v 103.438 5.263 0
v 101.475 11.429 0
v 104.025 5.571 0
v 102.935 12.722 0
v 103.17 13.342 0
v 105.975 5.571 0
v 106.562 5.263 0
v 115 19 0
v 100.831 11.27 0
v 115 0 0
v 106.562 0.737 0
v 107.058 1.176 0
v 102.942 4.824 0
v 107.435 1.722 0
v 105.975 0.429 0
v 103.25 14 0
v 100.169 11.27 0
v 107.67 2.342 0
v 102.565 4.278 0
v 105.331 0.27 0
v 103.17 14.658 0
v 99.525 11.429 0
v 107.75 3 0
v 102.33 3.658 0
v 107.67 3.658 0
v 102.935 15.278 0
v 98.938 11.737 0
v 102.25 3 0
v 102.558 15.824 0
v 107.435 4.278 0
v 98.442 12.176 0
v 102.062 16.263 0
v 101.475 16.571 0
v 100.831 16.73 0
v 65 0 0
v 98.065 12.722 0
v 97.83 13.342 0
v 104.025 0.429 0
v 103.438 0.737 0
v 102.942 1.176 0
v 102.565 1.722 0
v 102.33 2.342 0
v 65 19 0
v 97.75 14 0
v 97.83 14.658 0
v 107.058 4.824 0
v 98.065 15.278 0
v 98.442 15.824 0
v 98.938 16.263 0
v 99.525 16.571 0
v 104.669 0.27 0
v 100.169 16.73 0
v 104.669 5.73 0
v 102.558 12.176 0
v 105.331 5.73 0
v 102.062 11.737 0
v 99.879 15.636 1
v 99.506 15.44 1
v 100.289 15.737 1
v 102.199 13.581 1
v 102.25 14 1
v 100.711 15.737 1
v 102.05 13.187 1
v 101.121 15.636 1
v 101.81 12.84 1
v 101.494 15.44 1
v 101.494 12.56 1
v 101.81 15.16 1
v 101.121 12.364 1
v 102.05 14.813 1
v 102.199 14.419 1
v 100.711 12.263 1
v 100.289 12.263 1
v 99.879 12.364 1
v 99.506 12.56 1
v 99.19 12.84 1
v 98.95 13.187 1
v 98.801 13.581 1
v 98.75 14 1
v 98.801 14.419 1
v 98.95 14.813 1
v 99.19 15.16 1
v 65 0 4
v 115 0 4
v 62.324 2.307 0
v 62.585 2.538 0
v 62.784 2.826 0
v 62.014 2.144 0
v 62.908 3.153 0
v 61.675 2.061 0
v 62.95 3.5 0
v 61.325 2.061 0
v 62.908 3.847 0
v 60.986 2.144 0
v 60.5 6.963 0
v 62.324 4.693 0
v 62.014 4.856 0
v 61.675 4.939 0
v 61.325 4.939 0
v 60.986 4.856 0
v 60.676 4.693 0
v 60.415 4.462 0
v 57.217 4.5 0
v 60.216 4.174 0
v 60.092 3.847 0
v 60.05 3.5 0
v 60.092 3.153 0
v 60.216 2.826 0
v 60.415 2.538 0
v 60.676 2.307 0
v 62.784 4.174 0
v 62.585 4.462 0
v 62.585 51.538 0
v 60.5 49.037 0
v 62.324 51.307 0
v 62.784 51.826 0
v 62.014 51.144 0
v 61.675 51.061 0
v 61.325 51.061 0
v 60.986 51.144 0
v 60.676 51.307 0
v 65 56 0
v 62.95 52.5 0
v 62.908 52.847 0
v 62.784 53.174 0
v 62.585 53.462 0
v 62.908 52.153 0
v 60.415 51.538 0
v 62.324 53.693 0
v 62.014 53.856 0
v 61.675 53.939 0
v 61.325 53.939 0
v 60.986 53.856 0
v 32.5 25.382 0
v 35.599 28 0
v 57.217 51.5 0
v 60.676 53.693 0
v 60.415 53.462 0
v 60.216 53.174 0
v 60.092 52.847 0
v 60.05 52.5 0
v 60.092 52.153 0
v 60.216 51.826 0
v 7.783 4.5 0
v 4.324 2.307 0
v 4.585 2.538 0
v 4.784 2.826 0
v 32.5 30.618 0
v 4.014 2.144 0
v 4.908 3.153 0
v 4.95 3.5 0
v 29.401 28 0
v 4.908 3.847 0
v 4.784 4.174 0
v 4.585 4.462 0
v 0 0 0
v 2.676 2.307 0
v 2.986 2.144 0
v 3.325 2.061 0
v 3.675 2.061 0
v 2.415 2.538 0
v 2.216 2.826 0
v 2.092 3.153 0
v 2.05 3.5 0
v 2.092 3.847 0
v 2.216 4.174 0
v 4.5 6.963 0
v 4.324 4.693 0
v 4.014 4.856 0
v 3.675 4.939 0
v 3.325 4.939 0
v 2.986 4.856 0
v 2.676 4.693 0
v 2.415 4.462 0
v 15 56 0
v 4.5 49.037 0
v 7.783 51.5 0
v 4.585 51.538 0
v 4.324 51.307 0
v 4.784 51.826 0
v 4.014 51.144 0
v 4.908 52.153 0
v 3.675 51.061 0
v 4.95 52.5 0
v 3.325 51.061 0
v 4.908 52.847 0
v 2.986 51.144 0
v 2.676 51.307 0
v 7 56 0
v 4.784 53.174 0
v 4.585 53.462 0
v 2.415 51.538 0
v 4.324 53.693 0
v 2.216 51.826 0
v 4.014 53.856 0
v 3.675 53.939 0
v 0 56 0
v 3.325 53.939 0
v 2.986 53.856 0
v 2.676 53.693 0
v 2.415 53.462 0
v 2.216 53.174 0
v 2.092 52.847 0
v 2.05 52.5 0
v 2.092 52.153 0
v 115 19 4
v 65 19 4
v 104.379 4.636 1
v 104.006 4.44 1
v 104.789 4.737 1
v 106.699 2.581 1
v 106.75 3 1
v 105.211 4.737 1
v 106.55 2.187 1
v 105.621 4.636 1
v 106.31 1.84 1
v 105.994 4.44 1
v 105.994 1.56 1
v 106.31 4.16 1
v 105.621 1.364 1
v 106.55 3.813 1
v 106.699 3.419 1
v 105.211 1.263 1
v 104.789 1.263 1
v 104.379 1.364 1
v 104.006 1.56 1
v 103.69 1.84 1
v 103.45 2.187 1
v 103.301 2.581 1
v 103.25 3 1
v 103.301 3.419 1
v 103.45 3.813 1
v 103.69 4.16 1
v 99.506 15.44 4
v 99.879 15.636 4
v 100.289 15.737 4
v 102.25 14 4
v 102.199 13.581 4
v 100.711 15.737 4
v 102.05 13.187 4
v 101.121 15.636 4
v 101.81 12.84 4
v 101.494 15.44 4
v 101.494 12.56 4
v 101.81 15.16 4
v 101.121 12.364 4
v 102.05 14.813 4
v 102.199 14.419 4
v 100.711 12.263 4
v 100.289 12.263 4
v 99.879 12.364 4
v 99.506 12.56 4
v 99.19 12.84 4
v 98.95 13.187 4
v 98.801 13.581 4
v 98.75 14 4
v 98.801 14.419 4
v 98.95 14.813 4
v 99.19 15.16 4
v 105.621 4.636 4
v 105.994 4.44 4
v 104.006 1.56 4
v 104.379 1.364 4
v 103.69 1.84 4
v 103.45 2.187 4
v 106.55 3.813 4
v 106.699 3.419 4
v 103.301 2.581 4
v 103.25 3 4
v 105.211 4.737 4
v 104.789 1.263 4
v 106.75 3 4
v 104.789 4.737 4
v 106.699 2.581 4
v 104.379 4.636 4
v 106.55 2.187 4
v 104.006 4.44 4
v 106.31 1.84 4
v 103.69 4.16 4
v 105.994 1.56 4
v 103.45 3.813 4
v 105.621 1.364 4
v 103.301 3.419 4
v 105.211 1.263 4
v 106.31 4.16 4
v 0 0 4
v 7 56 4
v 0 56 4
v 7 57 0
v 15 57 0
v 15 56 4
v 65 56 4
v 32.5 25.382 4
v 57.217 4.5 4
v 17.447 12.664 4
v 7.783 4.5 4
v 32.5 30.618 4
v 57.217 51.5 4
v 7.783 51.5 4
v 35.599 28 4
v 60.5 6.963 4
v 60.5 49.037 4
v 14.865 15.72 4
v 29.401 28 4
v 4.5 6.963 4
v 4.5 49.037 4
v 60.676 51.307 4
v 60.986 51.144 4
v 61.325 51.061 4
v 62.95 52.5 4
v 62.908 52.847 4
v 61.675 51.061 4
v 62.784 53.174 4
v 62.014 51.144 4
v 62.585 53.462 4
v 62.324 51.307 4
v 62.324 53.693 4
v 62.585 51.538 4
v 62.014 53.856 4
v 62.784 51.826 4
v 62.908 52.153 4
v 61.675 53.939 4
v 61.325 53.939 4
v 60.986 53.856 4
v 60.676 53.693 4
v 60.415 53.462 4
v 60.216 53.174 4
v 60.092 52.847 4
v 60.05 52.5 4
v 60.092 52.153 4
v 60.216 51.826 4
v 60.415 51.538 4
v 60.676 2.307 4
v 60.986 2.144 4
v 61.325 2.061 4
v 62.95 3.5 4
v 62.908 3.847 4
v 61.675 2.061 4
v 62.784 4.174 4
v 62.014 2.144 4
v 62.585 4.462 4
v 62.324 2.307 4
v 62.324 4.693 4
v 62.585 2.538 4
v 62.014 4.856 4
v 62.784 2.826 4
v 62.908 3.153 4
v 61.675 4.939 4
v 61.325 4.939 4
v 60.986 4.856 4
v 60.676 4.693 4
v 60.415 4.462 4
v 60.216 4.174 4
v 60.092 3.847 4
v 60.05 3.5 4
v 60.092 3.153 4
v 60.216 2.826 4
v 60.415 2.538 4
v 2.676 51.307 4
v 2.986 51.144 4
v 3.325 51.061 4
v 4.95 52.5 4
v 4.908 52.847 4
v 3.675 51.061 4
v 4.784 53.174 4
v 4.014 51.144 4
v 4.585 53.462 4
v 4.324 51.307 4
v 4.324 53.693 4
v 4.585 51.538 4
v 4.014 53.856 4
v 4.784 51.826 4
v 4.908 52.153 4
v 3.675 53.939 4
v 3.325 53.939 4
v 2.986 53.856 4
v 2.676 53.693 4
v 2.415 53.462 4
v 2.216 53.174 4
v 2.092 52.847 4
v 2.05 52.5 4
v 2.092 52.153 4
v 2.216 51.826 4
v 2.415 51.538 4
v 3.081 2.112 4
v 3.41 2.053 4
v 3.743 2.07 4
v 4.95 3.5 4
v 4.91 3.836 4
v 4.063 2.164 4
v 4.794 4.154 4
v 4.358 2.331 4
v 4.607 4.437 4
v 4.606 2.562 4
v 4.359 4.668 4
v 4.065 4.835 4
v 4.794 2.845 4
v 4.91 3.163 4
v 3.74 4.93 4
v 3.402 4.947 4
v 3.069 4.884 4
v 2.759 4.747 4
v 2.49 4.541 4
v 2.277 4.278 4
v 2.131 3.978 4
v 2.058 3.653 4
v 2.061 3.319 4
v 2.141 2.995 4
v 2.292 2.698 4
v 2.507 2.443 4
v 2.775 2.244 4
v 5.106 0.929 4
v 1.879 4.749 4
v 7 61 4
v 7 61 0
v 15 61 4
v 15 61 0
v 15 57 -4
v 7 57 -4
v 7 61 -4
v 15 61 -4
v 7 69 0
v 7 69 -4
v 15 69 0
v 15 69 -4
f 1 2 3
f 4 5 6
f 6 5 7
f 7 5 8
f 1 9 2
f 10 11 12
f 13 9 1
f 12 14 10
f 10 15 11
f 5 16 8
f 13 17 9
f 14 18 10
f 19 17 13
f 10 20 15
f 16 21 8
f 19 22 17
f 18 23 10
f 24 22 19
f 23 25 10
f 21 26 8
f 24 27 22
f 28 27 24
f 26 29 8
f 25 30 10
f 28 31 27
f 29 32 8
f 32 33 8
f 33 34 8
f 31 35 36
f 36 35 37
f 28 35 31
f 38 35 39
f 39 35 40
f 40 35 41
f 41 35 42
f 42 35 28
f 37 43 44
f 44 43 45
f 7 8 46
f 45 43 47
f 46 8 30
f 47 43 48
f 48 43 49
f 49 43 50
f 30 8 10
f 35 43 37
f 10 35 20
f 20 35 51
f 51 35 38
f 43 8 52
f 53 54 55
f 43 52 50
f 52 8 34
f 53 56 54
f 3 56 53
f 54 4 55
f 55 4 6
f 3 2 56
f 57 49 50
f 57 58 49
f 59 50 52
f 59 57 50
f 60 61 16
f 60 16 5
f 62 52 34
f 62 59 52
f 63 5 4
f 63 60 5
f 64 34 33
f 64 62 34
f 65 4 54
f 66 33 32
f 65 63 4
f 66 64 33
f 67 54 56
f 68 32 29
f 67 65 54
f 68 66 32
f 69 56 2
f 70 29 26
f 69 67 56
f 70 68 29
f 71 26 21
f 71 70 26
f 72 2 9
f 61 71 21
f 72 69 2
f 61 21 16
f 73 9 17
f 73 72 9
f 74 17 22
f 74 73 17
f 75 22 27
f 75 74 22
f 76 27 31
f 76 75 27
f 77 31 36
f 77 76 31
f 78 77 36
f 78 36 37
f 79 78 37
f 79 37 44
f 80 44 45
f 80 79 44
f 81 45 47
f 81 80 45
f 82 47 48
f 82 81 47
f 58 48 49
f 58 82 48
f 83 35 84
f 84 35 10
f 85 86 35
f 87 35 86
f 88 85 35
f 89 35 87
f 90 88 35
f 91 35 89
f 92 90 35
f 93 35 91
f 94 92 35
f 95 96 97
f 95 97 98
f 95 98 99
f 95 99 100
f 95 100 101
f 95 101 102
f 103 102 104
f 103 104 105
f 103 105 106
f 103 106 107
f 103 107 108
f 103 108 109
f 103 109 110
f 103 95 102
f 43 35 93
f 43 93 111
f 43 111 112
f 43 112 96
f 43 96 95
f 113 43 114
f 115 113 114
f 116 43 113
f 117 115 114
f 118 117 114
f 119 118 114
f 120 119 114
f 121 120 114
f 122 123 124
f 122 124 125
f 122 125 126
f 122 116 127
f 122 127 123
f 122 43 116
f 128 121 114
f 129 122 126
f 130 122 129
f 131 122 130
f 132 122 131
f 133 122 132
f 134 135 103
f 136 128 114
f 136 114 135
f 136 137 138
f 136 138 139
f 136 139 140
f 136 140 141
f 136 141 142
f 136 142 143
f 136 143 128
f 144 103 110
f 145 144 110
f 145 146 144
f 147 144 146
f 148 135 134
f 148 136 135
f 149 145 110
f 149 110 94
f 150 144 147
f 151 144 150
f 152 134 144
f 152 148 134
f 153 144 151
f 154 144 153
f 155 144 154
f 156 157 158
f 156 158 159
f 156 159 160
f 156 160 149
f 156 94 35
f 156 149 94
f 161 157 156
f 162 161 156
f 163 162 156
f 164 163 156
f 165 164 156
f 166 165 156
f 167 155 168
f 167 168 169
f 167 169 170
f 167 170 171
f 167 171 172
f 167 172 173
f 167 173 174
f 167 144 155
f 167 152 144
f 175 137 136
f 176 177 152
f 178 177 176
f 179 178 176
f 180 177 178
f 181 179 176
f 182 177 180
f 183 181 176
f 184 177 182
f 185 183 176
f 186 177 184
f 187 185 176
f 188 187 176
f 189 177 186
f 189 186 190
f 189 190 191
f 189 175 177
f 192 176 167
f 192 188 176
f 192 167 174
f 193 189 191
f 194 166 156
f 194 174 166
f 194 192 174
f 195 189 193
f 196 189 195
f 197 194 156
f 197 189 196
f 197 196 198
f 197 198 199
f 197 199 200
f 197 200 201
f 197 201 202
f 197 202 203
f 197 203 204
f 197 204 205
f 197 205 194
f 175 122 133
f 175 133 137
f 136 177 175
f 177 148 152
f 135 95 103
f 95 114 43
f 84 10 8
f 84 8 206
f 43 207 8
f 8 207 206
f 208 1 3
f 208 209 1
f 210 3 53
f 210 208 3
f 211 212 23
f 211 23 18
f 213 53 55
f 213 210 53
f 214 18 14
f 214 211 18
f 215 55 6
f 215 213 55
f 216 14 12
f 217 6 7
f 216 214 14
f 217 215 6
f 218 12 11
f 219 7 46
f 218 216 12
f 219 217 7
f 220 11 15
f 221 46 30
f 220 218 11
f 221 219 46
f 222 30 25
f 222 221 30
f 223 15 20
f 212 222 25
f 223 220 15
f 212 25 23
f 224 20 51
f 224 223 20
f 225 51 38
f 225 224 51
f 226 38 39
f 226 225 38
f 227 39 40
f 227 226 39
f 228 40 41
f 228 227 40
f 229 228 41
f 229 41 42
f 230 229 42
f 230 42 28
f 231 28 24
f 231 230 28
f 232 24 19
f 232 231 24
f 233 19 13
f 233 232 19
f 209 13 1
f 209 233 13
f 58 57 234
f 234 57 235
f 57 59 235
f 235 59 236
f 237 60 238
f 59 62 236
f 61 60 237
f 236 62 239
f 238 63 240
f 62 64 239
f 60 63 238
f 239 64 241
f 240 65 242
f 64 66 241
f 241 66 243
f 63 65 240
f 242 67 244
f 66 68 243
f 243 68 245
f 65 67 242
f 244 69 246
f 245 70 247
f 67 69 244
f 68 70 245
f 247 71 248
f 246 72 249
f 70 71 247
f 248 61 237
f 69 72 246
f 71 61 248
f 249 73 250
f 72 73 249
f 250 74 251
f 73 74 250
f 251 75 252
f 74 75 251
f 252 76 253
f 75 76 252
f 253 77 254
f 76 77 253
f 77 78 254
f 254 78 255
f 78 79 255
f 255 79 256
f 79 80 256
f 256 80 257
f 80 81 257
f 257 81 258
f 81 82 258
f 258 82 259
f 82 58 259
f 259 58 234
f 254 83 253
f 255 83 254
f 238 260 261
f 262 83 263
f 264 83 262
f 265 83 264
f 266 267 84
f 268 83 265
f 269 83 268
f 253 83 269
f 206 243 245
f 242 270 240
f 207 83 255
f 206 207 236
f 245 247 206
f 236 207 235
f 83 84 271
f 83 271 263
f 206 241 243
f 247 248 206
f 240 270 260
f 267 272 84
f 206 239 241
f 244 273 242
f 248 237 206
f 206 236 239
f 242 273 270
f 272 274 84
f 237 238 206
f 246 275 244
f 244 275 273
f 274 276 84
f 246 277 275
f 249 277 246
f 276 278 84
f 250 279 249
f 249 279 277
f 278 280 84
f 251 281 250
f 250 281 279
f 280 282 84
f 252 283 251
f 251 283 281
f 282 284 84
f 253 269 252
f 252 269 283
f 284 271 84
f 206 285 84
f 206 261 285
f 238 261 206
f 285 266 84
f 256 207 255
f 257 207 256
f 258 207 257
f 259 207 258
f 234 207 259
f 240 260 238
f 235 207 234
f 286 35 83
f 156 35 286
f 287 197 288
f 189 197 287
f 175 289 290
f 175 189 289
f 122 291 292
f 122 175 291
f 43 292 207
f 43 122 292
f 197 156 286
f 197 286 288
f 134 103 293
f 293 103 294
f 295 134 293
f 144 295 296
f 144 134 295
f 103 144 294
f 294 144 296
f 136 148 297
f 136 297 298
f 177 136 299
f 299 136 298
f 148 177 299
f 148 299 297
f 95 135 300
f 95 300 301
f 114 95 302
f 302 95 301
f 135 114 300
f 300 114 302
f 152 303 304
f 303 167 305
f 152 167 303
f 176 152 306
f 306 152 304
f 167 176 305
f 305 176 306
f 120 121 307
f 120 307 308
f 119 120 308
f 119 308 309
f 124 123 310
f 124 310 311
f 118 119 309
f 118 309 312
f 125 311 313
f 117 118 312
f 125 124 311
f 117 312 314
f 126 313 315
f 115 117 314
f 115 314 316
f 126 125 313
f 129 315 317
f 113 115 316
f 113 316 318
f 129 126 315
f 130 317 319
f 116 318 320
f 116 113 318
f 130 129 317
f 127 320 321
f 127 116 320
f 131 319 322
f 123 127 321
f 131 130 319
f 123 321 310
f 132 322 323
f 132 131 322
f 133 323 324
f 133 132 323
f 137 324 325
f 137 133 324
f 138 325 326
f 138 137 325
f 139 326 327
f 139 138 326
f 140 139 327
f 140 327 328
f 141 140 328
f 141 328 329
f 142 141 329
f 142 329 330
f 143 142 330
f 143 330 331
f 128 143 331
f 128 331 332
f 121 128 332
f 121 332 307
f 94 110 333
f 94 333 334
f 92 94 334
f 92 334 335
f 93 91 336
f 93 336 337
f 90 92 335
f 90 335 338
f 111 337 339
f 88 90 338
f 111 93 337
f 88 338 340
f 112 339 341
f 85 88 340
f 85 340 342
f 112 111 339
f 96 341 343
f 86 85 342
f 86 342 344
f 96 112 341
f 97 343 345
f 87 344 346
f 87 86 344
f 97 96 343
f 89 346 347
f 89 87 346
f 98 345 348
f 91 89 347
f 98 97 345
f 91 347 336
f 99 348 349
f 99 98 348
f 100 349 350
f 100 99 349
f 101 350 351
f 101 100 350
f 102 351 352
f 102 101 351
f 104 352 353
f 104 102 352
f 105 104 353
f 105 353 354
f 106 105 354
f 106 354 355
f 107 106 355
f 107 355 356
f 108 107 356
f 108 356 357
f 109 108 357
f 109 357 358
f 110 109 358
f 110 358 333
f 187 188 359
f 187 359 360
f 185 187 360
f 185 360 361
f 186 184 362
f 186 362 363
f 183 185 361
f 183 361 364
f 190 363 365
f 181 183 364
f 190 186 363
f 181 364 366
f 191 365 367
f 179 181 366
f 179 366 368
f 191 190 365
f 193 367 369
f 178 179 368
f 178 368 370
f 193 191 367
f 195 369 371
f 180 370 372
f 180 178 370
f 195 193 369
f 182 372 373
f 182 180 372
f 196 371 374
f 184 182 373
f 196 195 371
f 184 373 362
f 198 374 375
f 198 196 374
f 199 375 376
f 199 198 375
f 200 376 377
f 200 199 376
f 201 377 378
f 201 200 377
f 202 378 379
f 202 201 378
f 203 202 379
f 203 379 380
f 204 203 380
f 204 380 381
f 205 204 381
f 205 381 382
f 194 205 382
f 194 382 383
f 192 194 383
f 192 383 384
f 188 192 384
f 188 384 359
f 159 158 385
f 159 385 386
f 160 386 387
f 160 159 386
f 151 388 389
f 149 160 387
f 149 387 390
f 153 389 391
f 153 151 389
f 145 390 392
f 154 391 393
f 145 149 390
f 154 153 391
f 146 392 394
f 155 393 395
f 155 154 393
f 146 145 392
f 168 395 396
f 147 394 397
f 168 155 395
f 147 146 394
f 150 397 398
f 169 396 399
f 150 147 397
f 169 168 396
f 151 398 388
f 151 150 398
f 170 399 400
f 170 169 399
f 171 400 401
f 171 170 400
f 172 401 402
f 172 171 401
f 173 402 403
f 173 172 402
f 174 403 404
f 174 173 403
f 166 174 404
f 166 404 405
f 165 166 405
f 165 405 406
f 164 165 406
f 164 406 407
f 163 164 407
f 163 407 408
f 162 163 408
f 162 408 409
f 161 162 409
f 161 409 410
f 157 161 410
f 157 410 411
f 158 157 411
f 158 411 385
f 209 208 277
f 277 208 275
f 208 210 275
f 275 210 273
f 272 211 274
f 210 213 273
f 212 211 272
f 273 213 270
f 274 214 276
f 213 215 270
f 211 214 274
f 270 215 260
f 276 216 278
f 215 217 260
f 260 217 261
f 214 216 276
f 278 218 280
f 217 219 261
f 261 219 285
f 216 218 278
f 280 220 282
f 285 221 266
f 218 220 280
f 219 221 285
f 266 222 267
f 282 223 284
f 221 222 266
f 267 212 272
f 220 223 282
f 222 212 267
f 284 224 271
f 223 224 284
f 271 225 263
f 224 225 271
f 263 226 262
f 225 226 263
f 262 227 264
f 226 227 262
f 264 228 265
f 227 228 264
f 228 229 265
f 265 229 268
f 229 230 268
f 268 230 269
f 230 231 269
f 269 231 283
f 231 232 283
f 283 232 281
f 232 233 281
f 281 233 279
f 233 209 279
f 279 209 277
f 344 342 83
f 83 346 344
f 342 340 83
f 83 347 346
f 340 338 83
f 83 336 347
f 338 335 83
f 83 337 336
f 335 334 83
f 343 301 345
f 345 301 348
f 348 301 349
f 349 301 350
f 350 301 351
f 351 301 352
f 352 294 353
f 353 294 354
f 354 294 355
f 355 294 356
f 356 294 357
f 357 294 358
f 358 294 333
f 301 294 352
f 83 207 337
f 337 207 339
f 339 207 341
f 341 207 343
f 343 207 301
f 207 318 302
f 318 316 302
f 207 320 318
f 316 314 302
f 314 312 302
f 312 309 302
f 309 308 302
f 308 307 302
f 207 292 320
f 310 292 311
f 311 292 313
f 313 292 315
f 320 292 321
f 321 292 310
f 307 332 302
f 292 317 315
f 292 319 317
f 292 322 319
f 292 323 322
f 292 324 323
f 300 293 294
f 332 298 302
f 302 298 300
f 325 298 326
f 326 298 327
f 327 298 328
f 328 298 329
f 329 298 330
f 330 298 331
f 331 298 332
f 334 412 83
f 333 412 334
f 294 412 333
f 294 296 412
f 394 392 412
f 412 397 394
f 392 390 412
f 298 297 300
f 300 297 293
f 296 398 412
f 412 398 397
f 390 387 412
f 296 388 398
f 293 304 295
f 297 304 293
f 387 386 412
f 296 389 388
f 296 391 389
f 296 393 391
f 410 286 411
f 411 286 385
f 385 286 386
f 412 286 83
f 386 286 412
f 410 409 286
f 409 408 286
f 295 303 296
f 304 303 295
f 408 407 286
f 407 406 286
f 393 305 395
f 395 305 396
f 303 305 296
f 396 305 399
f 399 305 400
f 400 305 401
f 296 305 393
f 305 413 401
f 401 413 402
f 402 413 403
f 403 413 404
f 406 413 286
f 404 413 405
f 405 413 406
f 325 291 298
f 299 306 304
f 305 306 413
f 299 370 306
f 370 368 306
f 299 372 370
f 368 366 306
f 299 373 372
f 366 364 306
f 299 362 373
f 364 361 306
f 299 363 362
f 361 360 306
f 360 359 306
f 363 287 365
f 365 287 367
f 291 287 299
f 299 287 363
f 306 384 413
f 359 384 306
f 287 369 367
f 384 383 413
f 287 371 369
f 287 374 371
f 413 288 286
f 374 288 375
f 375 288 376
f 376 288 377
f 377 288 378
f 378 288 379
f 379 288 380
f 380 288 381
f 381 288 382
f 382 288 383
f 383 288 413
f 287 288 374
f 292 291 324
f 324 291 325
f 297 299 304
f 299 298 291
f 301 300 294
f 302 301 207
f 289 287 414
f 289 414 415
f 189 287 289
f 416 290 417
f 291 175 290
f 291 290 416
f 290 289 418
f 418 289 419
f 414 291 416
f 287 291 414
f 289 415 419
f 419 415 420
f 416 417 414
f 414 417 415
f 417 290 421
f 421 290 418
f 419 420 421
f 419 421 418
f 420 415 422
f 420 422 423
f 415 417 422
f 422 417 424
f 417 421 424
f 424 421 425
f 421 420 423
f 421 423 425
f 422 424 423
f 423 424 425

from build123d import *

# Parameters (mm, degrees)
SKETCH_W        = 65
SKETCH_H        = 56
SKETCH_R        = 1.45
PAD_DEPTH       = 4
SKETCH002_R     = 1.25
POCKET_DEPTH    = 5
SKETCH005_W     = 19
SKETCH005_H     = 4
PAD002_DEPTH    = 50
SKETCH006_W     = 8
SKETCH006_H     = 4
PAD003_DEPTH    = 5
SKETCH007_W     = 8
SKETCH007_H     = 4
PAD004_DEPTH    = 4
PAD004_FACE36_W = 8
PAD004_FACE36_H = 4
PAD005_DEPTH    = 8
SKETCH008_R     = 1.75
POCKET001_DEPTH = 4.001
CHAMFER_SIZE    = 1


with BuildPart() as part:
    # Sketch → Pad (new body)
    with BuildSketch(Plane.XY):
        with Locations((32.5, 28)):
            Rectangle(SKETCH_W, SKETCH_H)
        with Locations((3.5, 52.5)):
            Circle(SKETCH_R, mode=Mode.SUBTRACT)
        with Locations((61.5, 52.5)):
            Circle(SKETCH_R, mode=Mode.SUBTRACT)
        with Locations((3.5, 3.5)):
            Circle(SKETCH_R, mode=Mode.SUBTRACT)
        with Locations((61.5, 3.5)):
            Circle(SKETCH_R, mode=Mode.SUBTRACT)
        Polygon((7.782759, 51.5), (57.217241, 51.5), (32.5, 30.618193), align=None, mode=Mode.SUBTRACT)
        Polygon((60.5, 49.036979), (60.5, 6.963021), (35.599086, 28), align=None, mode=Mode.SUBTRACT)
        Polygon((57.217241, 4.5), (7.782759, 4.5), (32.5, 25.381807), align=None, mode=Mode.SUBTRACT)
        Polygon((4.5, 6.963021), (4.5, 49.036979), (29.400914, 28), align=None, mode=Mode.SUBTRACT)
    extrude(amount=PAD_DEPTH)

    # Sketch002 → Pocket (cut)
    with BuildSketch(Plane(origin=(-1.55844, 1.844684, 0), x_dir=(-0.763886, -0.645352, 0), z_dir=(-0.645352, 0.763886, 0))):
        with Locations((-21.5, 5.25)):
            Circle(SKETCH002_R)
        with Locations((-4.5, 5.25)):
            Circle(SKETCH002_R)
    extrude(amount=-POCKET_DEPTH, mode=Mode.SUBTRACT)

    # Sketch005 → Pad002 (join)
    with BuildSketch(Plane.YZ.offset(65)):
        with Locations((9.5, 2)):
            Rectangle(SKETCH005_W, SKETCH005_H)
    extrude(amount=PAD002_DEPTH)

    # Sketch006 (on Face1 of Pad002) → Pad003 (join)
    with BuildSketch(Plane(origin=(0, 56, 0), x_dir=(-1, 0, 0), z_dir=(0, 1, 0))):
        with Locations((-11, 2)):
            Rectangle(SKETCH006_W, SKETCH006_H)
    extrude(amount=PAD003_DEPTH)

    # Sketch007 (on Face6 of Pad003) → Pad004 (join)
    with BuildSketch(Plane(origin=(0, 0, 0), x_dir=(1, 0, 0), z_dir=(0, 0, -1))):
        with Locations((11, -59)):
            Rectangle(SKETCH007_W, SKETCH007_H)
    extrude(amount=PAD004_DEPTH)

    # Pad004 Face36 → Pad005 (add)
    with BuildSketch(Plane(origin=(11, 61, -2), x_dir=(1, 0, 0), z_dir=(0, 1, 0))):
        Rectangle(PAD004_FACE36_W, PAD004_FACE36_H)
    extrude(amount=PAD005_DEPTH)

    # Sketch008 (on Face9 of Pad005) → Pocket001 (cut, through all)
    with BuildSketch(Plane(origin=(0, 0, 0), x_dir=(1, 0, 0), z_dir=(0, 0, -1))):
        with Locations((105, -3)):
            Circle(SKETCH008_R)
        with Locations((100.5, -14)):
            Circle(SKETCH008_R)
    extrude(amount=-POCKET001_DEPTH, mode=Mode.SUBTRACT)

    # Chamfer
    chamfer_edges = [part.edges().sort_by_distance(p)[0] for p in [
        (98.75, 14, 0),
        (103.25, 3, 0),
    ]]
    chamfer(chamfer_edges, length=CHAMFER_SIZE)


solid = part.part
